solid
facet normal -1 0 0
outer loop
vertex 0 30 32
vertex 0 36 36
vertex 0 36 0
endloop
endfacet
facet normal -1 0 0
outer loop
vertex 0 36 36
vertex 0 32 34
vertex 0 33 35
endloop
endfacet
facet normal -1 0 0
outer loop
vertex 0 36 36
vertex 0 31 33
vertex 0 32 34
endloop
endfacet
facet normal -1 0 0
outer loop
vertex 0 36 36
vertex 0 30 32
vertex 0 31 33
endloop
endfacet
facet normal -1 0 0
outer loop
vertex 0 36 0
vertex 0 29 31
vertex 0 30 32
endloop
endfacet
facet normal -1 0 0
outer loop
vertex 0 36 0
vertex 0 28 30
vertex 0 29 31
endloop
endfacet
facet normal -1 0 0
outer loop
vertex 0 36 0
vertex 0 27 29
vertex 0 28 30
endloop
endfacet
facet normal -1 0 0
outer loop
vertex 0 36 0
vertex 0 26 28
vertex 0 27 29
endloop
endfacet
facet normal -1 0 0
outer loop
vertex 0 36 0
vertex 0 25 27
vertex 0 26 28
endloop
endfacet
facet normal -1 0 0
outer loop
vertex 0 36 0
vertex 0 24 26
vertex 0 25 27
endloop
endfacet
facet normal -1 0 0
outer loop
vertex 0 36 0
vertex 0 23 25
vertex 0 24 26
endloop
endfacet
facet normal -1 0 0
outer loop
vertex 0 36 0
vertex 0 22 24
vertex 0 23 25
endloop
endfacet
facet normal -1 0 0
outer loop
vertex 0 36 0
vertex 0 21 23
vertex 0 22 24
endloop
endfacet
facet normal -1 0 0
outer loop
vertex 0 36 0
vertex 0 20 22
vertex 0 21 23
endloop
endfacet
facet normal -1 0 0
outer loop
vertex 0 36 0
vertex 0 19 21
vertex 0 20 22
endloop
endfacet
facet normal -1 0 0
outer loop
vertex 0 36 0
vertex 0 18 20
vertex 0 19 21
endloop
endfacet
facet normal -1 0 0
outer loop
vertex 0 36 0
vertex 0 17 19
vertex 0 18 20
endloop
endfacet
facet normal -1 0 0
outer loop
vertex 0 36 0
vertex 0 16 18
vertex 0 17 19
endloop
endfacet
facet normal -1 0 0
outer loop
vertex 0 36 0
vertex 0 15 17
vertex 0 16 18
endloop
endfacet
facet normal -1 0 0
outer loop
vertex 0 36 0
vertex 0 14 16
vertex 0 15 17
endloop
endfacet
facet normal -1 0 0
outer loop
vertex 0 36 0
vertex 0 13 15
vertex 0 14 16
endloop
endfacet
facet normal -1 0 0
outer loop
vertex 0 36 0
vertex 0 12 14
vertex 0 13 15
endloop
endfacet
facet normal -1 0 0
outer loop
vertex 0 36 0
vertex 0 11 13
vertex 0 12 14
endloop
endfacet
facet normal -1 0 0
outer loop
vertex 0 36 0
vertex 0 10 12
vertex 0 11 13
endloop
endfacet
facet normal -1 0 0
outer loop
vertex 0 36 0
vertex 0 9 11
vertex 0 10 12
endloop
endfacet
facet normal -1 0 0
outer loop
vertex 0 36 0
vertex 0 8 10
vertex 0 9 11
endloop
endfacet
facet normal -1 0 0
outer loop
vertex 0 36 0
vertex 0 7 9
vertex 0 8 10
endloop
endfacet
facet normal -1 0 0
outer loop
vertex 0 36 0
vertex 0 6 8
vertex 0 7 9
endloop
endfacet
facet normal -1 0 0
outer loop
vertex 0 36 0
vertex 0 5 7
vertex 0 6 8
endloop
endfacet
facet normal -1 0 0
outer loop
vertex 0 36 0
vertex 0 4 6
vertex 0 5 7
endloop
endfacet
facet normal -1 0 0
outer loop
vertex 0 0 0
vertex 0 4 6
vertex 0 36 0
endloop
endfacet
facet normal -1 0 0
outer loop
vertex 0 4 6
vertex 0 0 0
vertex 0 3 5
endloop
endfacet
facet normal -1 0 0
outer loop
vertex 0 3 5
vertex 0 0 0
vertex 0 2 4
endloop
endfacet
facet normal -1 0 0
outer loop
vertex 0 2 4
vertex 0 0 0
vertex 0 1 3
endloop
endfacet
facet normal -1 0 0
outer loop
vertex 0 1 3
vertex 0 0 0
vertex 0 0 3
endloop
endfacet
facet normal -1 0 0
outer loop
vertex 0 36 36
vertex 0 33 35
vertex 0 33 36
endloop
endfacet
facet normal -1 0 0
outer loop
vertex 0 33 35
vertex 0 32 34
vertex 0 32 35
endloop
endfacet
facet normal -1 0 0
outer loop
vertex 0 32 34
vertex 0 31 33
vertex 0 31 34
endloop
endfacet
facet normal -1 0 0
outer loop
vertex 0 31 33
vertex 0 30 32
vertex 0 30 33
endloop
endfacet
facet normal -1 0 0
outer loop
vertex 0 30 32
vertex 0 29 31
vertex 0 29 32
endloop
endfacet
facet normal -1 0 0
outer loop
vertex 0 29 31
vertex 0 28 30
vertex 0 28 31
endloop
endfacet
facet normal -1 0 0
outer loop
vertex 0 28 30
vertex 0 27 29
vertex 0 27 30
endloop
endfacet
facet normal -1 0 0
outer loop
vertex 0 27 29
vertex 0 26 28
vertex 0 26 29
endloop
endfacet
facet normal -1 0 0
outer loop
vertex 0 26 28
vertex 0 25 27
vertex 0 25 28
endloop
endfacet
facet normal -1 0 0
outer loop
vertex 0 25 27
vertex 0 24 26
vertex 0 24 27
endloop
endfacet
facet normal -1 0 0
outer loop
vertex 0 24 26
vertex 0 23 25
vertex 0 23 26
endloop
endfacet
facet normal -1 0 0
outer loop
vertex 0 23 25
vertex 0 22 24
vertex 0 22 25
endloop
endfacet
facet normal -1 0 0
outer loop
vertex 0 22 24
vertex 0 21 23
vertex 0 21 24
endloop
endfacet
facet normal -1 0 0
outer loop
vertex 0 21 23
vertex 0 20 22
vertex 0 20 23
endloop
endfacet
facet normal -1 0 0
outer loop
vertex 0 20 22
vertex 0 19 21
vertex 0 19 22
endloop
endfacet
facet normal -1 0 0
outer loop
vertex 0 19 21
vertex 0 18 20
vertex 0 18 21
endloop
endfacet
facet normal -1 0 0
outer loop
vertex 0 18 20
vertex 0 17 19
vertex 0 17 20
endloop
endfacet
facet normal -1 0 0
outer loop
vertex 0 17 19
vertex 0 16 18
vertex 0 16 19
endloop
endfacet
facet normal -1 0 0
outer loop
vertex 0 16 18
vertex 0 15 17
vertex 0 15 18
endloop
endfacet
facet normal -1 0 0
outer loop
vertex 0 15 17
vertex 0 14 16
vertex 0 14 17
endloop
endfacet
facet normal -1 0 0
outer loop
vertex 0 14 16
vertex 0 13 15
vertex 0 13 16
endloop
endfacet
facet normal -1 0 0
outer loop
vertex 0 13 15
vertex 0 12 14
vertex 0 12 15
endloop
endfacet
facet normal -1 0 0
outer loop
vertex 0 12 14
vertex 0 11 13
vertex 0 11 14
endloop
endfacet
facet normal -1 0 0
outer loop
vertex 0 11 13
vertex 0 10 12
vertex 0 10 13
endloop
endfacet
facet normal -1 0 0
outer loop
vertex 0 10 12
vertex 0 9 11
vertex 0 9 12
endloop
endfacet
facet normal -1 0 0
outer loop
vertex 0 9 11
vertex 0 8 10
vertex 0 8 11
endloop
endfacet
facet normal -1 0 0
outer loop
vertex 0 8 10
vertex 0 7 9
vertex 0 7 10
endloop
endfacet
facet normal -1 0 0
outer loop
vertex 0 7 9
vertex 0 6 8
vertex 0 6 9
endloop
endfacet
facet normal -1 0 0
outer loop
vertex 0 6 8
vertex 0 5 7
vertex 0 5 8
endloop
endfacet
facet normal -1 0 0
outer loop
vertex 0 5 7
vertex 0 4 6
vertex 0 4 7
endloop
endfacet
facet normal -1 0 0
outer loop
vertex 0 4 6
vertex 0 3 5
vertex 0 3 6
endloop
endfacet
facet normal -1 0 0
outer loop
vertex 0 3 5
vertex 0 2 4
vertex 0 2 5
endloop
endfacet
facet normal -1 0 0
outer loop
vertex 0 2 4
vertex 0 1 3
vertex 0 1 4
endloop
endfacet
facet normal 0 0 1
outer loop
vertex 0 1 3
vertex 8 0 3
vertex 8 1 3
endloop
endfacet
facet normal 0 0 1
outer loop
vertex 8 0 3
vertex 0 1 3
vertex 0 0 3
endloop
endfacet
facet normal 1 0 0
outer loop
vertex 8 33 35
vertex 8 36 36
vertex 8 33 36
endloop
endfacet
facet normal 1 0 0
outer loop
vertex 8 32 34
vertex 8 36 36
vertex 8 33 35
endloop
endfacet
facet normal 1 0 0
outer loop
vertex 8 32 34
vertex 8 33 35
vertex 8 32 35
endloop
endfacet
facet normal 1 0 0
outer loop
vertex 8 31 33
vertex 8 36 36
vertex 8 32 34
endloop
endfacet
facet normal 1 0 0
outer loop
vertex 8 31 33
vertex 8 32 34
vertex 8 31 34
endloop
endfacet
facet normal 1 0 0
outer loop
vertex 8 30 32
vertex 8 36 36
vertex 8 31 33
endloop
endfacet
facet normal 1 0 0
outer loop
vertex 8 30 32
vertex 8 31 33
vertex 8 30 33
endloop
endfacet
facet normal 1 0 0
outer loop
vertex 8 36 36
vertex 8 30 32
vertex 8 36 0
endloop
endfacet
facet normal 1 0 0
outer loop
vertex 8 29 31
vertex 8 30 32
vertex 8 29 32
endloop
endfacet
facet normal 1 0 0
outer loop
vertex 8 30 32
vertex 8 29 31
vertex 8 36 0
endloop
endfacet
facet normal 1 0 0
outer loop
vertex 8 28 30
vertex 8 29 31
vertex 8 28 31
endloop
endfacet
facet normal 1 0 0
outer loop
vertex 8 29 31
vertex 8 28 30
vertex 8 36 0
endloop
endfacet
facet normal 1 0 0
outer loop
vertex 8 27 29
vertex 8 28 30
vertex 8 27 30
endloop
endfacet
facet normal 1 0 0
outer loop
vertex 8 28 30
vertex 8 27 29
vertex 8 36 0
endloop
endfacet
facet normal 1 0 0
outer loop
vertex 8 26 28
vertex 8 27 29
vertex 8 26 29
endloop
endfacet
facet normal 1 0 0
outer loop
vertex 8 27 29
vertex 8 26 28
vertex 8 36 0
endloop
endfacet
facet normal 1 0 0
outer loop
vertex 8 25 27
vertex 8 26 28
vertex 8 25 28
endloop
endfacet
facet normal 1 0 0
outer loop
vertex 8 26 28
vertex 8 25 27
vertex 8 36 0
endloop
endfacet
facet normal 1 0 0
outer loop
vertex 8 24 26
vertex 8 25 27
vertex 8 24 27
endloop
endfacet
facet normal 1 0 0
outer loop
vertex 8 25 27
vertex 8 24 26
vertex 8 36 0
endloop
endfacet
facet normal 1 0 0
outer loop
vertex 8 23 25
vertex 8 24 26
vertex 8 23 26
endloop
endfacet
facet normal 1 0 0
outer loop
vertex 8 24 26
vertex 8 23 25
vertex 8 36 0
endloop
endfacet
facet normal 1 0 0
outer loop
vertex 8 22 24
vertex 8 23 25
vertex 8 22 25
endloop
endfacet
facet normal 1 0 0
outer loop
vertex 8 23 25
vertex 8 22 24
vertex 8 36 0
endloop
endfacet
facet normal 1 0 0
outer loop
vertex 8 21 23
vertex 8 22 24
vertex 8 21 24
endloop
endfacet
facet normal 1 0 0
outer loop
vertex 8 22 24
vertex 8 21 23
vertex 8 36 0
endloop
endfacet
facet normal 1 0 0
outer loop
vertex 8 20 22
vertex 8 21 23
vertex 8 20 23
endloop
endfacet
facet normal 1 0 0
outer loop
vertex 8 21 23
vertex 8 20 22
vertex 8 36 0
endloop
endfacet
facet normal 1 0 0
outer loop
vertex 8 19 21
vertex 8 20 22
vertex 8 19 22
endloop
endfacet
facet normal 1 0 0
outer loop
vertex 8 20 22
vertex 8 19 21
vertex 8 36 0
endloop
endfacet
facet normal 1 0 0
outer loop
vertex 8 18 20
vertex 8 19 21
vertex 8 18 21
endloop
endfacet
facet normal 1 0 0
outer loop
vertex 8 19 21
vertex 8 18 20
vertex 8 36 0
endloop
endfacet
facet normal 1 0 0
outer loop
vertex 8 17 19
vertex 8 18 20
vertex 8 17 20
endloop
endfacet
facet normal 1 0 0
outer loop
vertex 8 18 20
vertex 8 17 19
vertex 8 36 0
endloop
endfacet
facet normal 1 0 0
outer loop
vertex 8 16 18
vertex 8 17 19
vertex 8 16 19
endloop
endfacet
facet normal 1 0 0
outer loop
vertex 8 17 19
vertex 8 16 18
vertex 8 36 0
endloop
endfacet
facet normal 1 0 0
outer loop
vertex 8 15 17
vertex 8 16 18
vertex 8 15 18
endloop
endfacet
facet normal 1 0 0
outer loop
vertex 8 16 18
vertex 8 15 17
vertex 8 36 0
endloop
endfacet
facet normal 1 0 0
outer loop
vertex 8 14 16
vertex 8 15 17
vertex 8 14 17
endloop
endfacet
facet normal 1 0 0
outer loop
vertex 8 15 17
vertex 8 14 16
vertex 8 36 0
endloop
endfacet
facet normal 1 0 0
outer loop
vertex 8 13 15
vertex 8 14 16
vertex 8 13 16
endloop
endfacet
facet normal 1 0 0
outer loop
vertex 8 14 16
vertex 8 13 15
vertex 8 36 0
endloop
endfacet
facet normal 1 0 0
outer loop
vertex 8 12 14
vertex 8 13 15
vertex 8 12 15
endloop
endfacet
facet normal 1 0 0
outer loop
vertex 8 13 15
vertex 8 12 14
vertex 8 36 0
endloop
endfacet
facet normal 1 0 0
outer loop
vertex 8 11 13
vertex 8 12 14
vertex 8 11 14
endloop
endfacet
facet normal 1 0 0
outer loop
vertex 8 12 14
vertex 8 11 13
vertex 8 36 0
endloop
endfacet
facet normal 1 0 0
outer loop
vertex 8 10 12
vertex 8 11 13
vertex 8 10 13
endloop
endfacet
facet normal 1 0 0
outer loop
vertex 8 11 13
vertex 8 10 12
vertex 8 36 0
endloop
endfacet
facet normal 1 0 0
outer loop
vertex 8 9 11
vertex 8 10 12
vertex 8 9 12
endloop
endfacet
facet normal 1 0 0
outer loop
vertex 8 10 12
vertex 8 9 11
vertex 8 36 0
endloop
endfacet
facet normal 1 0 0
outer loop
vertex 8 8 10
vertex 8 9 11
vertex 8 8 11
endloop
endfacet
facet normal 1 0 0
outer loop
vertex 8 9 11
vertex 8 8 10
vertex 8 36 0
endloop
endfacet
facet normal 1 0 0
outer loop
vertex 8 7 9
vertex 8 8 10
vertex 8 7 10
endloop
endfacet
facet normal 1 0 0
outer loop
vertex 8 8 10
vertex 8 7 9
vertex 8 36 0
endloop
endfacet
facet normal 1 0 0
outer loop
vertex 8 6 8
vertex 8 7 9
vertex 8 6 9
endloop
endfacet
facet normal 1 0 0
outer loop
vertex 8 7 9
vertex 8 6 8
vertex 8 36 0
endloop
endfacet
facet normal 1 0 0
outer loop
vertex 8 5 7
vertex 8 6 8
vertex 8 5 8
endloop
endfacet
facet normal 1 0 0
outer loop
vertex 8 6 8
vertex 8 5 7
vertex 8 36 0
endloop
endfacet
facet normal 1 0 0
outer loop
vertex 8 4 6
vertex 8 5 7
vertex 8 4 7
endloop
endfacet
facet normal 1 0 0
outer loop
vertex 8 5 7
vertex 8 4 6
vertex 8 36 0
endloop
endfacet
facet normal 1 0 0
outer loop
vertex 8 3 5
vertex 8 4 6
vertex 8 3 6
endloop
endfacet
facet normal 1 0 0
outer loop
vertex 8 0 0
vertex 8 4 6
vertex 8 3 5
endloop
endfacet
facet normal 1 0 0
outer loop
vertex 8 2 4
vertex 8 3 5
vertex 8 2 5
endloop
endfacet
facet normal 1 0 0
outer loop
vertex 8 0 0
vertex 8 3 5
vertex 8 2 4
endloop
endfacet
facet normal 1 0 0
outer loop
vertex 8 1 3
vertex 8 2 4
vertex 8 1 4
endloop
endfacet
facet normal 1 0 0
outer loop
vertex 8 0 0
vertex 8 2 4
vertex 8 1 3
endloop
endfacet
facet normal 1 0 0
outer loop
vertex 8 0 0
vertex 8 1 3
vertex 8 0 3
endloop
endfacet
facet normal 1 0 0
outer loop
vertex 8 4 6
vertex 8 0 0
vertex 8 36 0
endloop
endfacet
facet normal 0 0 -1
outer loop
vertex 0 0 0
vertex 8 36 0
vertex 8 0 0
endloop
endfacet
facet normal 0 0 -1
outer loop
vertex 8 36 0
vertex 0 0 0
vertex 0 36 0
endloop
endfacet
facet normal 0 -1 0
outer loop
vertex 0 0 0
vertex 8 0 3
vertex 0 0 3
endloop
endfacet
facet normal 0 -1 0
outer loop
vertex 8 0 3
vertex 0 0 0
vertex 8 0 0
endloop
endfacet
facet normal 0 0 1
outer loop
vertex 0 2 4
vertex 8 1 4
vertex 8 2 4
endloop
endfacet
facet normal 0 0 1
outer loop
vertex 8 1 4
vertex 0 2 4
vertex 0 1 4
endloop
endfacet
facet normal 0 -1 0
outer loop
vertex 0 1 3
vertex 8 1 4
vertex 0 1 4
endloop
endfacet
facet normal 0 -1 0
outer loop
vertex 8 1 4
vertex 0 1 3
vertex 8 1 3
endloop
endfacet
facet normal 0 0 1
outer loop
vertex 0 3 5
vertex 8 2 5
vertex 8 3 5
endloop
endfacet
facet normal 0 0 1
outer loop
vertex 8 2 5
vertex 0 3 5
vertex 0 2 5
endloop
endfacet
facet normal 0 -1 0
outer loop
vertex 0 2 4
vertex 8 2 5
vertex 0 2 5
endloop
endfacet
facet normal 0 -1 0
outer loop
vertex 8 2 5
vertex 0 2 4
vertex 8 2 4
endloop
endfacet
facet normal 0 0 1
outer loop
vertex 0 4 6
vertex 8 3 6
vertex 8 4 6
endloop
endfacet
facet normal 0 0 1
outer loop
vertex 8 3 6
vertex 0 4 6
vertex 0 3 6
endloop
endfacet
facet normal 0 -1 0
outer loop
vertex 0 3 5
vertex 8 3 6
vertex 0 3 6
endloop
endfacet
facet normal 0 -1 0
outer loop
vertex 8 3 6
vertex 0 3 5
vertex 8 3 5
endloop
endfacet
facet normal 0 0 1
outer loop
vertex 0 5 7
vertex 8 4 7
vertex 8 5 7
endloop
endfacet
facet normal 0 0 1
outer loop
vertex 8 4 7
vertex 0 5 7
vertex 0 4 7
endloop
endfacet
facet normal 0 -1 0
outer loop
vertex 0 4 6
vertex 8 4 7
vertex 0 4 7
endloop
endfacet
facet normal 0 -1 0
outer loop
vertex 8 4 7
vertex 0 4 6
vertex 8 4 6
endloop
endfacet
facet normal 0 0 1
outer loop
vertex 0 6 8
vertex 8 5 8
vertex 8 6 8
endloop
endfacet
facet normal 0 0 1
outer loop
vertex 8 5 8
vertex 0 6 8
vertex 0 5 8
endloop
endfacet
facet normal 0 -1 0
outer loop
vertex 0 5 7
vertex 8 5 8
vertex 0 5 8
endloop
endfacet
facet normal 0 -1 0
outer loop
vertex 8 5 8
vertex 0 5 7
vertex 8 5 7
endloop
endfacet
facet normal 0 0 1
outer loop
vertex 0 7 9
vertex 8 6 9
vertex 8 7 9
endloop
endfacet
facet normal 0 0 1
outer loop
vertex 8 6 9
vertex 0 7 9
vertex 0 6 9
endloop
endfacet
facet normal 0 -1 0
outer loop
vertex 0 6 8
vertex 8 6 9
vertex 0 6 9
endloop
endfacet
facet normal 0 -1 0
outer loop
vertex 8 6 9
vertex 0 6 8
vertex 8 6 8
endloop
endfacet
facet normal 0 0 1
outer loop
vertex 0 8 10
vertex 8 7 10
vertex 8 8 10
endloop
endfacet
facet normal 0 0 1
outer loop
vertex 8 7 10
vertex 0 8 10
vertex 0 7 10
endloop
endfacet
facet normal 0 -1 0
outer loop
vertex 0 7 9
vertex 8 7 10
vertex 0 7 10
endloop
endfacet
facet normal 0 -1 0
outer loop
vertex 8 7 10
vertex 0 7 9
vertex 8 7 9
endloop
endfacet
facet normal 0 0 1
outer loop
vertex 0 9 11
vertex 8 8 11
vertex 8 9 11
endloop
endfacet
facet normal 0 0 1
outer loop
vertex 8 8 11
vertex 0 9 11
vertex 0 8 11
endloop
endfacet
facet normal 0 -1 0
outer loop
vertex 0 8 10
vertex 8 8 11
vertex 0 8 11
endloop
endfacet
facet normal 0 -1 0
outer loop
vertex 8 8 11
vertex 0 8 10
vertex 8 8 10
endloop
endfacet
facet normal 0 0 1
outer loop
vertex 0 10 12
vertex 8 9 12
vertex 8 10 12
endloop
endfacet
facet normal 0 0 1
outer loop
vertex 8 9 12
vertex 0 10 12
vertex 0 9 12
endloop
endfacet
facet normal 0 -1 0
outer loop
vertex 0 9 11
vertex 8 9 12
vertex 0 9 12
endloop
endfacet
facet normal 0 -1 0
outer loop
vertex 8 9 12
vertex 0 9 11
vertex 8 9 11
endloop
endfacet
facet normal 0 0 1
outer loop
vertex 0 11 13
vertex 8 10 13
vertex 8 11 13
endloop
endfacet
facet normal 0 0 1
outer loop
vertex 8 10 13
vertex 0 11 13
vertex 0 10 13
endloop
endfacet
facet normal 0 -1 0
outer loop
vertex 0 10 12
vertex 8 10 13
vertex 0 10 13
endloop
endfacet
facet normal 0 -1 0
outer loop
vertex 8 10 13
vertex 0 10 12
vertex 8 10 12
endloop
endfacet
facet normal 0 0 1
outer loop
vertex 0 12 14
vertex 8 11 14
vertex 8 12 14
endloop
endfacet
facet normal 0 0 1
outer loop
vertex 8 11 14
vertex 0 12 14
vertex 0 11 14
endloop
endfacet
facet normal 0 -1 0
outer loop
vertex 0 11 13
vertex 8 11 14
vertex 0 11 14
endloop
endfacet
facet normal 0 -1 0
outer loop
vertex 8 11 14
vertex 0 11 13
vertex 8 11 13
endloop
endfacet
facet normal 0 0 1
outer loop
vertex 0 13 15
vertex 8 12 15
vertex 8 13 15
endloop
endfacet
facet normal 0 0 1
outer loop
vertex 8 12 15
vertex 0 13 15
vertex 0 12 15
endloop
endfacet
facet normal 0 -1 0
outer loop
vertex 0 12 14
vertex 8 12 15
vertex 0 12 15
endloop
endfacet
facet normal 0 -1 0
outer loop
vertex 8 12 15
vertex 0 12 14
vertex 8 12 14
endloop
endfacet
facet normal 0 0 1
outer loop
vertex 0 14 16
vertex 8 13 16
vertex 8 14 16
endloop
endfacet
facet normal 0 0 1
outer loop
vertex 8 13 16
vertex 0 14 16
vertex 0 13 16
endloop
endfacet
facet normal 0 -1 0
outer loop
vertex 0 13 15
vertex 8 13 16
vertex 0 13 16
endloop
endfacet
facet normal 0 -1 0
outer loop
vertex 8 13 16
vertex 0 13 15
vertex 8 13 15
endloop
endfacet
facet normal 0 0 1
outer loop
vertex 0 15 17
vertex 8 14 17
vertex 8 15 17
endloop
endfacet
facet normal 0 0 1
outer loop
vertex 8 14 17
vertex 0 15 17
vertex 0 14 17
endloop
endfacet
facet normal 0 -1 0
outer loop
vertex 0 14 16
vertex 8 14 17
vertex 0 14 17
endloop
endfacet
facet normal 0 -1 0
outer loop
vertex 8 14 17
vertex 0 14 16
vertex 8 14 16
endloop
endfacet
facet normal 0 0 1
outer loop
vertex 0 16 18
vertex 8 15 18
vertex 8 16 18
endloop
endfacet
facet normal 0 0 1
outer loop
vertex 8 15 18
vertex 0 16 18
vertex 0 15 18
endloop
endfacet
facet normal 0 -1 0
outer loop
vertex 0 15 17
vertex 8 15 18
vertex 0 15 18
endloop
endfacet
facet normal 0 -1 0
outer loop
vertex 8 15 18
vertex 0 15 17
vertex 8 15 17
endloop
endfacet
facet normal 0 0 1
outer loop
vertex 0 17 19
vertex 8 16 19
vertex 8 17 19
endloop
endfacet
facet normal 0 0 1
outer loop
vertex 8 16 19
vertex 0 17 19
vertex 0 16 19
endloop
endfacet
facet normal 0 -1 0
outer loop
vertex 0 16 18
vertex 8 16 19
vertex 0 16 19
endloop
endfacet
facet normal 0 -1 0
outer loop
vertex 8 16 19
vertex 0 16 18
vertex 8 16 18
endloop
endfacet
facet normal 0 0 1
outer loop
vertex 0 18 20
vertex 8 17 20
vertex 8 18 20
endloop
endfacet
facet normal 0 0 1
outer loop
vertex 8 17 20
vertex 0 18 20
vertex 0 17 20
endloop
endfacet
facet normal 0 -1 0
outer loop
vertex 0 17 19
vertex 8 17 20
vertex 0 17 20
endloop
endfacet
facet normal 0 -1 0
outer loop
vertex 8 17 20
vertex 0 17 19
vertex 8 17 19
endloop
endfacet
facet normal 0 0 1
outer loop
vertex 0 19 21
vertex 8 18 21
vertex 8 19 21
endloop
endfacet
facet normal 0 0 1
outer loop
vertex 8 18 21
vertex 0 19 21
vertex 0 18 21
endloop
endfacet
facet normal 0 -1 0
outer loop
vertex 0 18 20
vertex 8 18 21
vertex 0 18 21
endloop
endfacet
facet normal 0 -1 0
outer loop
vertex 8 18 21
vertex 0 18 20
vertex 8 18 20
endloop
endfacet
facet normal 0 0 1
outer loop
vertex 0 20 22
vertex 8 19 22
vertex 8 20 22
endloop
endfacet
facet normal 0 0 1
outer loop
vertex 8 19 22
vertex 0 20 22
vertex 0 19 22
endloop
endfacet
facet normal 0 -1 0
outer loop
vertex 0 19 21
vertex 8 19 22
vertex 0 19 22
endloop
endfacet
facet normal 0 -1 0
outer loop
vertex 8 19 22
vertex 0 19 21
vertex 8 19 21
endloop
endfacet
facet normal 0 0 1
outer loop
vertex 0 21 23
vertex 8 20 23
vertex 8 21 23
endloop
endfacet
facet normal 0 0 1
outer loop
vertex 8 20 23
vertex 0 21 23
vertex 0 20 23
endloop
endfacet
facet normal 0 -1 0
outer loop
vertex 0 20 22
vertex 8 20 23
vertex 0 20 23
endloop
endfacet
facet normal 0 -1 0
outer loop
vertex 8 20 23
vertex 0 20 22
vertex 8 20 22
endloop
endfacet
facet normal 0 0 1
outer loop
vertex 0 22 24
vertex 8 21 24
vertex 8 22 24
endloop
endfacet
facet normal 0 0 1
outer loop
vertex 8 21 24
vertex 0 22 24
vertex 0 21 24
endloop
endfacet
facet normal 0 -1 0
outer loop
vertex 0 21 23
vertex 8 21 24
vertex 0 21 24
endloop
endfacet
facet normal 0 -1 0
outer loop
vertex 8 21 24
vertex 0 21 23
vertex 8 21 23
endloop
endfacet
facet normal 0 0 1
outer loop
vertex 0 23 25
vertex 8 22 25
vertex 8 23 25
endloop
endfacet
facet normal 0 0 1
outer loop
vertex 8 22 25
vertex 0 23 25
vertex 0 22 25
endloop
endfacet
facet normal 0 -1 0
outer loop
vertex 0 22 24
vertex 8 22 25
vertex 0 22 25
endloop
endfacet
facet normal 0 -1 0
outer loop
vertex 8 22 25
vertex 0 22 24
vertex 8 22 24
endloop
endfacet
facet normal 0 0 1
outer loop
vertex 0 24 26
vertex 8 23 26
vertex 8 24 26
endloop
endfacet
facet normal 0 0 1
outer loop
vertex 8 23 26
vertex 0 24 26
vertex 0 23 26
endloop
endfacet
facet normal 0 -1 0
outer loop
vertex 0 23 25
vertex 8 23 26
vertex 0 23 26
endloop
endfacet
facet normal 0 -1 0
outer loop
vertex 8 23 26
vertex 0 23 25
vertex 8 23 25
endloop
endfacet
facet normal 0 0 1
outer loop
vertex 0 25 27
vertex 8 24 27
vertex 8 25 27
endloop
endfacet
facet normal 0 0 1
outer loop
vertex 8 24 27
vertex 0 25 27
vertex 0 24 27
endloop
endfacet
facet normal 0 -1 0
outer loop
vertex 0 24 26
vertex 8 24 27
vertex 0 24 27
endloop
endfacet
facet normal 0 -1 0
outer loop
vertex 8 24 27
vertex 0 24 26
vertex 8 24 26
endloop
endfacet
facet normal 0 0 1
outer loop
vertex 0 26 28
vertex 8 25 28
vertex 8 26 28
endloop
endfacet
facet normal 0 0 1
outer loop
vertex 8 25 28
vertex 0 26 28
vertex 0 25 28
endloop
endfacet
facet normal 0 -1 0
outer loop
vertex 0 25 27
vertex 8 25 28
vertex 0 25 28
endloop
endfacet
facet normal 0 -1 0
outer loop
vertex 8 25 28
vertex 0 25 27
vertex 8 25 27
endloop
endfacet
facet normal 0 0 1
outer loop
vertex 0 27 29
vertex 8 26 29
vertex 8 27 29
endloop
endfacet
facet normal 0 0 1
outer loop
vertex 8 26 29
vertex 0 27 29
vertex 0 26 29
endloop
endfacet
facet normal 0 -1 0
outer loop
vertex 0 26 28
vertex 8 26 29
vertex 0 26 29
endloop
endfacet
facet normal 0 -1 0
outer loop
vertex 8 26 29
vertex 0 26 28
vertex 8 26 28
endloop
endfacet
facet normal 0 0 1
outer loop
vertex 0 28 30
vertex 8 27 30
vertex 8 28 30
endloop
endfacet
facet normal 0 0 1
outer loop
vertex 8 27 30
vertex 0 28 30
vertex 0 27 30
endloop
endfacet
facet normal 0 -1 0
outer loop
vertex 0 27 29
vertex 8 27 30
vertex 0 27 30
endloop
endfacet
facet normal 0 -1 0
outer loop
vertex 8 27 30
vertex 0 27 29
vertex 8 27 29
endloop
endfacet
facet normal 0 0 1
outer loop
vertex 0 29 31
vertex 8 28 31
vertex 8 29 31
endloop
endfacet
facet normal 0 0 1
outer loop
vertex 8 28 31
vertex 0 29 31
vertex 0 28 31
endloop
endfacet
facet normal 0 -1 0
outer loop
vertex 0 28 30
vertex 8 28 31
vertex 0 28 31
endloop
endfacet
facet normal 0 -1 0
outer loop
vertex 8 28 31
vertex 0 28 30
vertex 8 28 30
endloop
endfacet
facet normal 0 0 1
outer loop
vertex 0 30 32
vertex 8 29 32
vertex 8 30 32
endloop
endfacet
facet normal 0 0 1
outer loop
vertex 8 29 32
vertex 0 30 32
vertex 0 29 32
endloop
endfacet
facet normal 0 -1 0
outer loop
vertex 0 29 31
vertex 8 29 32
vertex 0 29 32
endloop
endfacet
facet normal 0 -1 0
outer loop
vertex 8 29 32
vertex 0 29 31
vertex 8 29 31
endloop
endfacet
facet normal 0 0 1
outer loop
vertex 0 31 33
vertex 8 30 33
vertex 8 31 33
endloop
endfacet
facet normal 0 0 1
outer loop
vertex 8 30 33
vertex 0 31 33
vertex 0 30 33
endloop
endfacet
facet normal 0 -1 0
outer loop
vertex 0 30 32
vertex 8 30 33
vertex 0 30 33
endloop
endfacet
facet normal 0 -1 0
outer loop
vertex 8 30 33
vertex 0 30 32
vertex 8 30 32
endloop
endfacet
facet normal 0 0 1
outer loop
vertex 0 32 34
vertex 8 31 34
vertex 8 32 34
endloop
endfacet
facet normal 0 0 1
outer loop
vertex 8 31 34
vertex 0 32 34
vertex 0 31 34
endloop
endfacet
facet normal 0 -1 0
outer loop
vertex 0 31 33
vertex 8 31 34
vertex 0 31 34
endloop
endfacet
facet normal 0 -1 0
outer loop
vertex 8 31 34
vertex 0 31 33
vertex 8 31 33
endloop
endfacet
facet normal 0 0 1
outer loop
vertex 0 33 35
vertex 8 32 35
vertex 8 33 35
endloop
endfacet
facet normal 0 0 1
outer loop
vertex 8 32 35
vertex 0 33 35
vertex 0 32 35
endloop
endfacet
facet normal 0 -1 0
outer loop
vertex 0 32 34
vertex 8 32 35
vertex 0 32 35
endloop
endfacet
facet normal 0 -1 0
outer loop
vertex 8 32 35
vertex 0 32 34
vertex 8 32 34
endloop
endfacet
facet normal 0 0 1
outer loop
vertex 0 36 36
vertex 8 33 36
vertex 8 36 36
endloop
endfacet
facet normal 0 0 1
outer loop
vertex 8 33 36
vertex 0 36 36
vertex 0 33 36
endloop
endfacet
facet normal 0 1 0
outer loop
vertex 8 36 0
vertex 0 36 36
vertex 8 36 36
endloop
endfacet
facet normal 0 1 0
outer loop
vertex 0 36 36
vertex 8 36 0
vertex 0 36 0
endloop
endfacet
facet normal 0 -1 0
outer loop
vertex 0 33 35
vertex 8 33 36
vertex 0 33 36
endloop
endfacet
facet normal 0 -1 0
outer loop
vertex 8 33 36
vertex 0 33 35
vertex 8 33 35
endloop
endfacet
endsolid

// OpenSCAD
for (i=[0:33]){
    translate([0,i-3,0]){
        color([1,0,1/i*3])
        cube([8,3,i]);
    }
    i=i+3;
}
